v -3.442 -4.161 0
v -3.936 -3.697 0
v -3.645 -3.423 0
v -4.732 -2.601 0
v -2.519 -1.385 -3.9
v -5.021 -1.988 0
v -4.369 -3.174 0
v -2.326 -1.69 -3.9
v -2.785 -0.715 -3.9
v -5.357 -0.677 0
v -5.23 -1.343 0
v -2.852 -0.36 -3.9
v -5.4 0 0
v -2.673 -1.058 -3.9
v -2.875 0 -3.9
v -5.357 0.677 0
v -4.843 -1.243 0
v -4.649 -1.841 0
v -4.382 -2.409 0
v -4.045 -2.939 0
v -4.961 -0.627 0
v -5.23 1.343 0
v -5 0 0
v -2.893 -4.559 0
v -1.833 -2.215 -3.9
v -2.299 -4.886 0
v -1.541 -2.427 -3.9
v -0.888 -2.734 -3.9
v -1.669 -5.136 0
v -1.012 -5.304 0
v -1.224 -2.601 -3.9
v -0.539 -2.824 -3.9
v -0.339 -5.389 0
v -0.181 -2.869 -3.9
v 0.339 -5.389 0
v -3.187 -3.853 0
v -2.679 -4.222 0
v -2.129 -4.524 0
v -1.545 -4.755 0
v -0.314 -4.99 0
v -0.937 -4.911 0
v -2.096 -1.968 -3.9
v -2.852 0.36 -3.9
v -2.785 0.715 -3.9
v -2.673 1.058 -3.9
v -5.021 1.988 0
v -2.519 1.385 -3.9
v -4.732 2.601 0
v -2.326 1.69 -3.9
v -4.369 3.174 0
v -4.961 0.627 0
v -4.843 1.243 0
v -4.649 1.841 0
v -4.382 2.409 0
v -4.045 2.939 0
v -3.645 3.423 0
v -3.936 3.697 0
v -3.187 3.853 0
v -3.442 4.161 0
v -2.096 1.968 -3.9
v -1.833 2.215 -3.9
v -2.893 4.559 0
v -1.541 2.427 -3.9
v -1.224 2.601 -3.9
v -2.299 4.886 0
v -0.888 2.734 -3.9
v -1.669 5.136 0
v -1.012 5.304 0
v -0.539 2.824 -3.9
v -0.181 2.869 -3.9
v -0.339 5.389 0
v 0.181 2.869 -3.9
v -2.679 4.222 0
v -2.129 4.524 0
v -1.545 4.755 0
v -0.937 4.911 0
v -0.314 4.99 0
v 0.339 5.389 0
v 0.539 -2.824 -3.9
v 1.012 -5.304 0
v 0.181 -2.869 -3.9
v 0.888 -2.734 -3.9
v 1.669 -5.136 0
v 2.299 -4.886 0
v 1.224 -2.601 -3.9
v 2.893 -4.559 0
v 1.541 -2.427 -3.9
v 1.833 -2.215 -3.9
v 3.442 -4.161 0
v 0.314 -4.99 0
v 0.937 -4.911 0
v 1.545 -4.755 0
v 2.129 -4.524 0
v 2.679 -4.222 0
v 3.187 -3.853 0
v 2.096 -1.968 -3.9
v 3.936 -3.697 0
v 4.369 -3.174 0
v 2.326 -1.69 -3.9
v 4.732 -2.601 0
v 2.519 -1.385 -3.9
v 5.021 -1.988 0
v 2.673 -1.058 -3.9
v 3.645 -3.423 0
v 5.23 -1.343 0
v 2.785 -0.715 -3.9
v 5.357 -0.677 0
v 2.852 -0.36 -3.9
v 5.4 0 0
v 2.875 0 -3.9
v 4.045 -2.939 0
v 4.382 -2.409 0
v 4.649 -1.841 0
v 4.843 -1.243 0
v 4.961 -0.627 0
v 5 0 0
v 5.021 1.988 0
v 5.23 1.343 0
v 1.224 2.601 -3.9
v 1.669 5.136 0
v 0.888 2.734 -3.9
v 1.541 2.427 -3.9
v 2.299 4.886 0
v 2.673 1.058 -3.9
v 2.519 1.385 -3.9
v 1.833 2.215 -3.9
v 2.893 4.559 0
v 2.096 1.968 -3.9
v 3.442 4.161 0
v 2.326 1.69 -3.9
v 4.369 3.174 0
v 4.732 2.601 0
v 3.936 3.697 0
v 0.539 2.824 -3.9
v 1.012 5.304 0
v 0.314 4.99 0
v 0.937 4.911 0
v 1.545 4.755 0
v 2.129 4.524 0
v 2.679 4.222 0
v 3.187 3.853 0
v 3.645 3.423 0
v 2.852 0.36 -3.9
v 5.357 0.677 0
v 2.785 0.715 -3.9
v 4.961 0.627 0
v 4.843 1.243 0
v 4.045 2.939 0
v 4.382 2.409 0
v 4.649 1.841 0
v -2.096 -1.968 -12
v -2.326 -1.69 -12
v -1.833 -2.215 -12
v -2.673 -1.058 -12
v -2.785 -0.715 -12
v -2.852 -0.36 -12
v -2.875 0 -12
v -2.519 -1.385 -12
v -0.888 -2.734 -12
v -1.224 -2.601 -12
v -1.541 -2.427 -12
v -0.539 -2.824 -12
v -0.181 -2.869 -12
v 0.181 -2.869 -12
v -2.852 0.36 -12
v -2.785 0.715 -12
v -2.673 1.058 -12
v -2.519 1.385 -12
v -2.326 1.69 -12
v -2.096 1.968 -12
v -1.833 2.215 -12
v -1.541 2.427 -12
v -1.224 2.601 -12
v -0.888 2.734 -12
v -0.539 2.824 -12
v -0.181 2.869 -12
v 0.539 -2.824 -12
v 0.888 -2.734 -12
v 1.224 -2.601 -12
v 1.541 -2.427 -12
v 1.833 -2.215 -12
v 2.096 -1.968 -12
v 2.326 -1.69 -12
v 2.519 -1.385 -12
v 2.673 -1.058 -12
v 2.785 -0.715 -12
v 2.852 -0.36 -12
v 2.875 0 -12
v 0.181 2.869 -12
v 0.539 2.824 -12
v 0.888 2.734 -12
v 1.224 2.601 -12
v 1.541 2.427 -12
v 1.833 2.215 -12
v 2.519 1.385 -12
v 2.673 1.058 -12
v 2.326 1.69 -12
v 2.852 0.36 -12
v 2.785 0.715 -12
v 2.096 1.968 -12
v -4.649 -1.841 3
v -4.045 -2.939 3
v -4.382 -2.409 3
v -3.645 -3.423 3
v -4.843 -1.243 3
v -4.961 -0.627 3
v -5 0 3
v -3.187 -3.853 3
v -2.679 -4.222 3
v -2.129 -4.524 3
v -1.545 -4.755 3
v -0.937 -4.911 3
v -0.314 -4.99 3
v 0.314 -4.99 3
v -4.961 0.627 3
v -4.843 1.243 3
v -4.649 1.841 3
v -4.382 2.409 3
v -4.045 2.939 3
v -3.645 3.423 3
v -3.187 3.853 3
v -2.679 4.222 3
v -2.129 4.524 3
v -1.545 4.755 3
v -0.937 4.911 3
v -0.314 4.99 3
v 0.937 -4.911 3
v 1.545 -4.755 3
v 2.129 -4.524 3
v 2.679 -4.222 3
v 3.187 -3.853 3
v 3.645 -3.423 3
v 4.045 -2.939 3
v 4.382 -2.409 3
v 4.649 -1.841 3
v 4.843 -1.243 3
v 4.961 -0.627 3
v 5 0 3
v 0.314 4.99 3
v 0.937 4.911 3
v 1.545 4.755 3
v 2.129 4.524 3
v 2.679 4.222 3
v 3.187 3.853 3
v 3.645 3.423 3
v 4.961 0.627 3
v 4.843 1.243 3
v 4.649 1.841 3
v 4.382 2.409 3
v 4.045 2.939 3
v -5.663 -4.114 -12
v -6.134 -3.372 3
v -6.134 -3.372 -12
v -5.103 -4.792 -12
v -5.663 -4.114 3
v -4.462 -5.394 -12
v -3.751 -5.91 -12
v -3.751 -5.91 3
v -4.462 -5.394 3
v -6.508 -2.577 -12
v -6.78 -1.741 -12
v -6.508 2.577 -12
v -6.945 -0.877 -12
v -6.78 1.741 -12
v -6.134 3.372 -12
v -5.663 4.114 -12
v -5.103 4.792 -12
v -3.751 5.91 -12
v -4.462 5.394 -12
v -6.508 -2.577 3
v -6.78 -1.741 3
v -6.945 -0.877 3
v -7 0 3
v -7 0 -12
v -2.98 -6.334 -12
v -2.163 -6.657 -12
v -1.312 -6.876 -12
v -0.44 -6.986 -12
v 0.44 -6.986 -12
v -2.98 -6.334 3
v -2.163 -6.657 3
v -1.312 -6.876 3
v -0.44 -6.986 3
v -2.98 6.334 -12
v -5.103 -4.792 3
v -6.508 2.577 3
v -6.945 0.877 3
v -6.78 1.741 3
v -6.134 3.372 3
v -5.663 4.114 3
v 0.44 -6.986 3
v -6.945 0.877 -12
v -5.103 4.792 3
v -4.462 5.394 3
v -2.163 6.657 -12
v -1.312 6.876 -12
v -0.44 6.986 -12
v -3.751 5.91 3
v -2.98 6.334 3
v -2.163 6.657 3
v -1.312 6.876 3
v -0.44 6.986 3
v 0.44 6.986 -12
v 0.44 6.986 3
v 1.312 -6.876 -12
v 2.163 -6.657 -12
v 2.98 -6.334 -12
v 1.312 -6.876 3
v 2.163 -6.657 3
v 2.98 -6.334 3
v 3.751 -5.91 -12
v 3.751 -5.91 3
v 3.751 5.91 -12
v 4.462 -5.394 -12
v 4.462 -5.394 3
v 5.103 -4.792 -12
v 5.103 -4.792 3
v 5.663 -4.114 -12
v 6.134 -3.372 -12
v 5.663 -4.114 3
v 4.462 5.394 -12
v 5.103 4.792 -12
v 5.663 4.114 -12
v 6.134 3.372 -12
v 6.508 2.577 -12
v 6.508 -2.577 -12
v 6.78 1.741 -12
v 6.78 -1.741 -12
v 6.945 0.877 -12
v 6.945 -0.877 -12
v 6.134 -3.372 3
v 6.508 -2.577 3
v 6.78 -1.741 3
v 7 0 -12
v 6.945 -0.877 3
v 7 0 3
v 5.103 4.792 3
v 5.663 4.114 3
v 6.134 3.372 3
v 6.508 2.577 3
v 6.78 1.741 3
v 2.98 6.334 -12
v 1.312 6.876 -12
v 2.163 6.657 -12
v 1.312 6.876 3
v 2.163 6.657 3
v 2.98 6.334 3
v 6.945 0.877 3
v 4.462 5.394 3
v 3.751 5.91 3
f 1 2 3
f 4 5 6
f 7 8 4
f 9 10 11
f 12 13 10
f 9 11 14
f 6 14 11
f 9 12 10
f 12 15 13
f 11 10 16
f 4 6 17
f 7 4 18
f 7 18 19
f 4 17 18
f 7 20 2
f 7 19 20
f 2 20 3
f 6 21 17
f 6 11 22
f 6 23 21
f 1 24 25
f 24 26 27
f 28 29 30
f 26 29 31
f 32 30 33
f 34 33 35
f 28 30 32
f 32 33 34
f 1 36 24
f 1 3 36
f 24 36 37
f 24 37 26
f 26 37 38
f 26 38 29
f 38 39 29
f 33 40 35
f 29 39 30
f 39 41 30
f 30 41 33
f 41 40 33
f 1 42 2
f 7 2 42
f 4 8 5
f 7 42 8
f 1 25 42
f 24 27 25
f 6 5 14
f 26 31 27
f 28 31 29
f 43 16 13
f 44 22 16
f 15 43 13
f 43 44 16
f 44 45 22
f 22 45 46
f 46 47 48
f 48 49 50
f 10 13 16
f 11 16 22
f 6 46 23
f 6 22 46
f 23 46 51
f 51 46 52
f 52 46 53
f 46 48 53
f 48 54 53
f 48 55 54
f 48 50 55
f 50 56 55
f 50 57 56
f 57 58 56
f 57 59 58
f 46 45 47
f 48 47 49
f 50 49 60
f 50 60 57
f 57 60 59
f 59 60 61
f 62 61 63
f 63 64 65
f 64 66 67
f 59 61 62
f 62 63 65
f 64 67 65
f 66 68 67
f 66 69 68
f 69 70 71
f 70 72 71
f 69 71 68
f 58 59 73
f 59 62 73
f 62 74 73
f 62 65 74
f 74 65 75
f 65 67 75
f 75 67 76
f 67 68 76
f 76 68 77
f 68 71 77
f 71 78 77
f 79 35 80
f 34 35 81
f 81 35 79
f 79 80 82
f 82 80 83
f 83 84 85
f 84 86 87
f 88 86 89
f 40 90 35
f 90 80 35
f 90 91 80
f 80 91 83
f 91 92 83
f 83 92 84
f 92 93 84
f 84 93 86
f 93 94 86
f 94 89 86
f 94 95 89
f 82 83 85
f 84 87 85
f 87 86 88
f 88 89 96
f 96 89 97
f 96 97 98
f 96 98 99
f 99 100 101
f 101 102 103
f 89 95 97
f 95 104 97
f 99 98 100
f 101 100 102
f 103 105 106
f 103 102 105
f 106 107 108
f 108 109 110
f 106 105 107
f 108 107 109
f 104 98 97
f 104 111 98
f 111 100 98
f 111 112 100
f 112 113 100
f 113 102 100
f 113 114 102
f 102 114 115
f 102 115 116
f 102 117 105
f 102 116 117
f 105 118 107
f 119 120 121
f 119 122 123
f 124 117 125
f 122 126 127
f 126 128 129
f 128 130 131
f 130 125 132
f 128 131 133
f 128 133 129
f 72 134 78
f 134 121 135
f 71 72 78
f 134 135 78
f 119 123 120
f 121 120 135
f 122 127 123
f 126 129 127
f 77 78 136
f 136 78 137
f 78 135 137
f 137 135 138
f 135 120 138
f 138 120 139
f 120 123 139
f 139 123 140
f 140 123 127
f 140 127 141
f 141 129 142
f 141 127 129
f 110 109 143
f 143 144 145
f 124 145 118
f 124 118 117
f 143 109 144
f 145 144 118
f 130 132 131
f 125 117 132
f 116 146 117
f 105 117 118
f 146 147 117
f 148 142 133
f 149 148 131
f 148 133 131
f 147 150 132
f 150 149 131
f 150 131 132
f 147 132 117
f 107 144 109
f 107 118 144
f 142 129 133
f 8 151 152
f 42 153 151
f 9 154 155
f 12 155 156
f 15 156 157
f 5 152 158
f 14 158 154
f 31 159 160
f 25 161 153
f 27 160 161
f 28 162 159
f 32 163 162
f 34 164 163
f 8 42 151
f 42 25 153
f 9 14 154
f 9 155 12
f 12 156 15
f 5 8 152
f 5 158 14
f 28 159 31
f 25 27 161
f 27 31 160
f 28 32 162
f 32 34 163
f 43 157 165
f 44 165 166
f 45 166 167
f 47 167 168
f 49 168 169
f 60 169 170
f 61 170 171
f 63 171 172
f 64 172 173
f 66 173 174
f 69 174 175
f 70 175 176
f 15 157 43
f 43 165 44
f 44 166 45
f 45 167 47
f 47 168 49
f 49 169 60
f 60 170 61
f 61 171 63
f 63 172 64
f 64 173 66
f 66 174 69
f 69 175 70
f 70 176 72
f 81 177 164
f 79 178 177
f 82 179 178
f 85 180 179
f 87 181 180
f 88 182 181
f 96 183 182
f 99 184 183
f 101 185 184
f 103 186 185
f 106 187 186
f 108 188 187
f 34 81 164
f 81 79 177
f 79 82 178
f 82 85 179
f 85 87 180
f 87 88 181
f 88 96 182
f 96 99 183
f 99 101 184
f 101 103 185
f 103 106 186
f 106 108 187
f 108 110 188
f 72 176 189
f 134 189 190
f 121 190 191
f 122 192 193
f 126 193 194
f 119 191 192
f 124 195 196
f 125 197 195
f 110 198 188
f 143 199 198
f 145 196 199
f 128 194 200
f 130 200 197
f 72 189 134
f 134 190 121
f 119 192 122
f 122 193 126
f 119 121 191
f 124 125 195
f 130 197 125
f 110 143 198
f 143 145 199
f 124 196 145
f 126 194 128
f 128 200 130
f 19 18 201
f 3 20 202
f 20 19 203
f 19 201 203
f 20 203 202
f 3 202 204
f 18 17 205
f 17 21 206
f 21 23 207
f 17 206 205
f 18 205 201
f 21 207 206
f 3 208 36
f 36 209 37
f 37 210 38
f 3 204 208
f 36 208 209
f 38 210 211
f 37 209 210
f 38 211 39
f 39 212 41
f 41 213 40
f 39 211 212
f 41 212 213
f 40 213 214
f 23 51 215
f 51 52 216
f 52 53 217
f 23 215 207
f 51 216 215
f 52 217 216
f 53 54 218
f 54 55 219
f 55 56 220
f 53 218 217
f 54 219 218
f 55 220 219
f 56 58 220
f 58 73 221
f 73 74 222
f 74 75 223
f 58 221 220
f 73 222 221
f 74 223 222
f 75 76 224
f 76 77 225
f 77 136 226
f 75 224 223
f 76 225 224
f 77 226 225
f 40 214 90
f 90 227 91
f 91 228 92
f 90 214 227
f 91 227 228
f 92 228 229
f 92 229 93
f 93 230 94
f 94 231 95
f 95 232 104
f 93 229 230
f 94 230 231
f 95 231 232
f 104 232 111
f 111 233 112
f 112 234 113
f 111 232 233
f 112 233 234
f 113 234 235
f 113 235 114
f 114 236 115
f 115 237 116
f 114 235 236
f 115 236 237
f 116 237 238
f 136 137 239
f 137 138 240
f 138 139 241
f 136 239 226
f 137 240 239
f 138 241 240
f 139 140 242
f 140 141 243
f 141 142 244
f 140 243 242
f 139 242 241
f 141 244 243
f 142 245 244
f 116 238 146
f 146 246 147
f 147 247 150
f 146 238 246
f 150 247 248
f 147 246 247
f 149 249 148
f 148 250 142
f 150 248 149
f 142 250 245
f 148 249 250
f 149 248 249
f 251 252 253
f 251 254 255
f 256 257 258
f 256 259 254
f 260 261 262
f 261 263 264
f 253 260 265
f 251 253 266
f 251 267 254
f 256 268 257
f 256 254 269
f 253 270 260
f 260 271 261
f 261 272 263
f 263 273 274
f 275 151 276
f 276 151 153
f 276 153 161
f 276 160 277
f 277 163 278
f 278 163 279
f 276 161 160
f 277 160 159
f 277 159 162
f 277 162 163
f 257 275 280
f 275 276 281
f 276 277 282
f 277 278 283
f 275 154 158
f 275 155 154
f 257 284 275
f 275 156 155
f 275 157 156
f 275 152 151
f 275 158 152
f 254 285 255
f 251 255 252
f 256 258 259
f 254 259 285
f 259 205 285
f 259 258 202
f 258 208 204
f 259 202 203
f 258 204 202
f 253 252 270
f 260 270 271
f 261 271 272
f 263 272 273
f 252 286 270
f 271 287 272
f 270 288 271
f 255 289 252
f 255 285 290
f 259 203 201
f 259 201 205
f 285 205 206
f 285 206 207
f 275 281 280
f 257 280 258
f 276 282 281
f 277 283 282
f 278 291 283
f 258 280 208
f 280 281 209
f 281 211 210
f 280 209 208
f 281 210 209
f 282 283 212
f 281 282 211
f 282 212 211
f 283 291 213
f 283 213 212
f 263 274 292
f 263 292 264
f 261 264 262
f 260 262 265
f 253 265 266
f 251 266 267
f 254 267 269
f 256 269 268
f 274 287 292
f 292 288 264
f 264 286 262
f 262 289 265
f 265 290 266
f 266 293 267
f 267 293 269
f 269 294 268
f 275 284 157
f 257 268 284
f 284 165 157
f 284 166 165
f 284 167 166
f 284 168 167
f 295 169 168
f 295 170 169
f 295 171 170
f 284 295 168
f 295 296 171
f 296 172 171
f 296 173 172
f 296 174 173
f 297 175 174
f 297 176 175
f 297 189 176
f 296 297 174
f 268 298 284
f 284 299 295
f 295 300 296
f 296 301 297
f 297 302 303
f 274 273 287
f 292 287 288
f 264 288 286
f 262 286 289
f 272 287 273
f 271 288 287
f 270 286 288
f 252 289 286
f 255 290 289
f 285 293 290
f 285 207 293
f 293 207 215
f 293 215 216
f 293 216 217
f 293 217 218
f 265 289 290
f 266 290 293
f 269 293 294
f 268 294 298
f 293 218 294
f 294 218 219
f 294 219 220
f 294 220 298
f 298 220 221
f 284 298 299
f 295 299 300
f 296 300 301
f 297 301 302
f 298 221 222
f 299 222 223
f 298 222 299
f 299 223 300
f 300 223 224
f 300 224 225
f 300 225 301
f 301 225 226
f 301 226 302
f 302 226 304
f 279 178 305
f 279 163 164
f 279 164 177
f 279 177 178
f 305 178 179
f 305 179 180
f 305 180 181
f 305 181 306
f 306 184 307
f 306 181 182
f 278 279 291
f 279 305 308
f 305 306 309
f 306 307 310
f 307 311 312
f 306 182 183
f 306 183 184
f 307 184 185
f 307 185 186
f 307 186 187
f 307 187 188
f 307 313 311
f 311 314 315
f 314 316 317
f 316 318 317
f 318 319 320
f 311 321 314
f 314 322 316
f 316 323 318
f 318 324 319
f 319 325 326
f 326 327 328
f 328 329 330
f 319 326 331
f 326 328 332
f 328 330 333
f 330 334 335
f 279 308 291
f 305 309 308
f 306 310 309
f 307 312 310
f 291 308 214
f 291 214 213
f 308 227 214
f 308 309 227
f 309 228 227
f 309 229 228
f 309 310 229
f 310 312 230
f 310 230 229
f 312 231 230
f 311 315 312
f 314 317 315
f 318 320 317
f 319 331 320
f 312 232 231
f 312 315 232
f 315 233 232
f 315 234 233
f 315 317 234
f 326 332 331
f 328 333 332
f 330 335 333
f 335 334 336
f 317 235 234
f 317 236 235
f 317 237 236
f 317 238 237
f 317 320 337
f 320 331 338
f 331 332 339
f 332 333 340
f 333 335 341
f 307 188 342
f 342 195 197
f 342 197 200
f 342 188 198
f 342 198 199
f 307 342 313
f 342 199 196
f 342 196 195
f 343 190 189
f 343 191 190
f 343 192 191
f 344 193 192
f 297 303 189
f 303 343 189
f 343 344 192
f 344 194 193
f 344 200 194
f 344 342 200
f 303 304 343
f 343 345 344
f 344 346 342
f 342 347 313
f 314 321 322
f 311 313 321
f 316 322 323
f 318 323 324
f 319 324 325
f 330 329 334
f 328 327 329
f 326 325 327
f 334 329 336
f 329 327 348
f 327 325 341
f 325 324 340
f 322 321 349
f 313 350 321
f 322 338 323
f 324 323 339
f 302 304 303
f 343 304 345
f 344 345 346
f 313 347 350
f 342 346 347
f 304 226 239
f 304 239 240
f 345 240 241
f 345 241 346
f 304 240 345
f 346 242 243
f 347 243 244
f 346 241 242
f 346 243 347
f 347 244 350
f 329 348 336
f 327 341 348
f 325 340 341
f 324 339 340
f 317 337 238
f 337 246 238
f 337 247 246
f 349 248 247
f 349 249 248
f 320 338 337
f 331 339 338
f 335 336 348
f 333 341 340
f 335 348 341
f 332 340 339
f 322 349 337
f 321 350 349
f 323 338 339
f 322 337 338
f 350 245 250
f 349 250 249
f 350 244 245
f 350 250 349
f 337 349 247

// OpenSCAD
$fn = 50;


difference() {
	union() {
		translate(v = [0, 0, -12.0000000000]) {
			cylinder(h = 15, r = 7.0000000000);
		}
	}
	union() {
		translate(v = [0, 0, 0]) {
			rotate(a = [0, 0, 0]) {
				difference() {
					union() {
						translate(v = [0, 0, -15.0000000000]) {
							cylinder(h = 15, r = 2.6000000000);
						}
						translate(v = [0, 0, -3.9000000000]) {
							cylinder(h = 3.9000000000, r1 = 2.8750000000, r2 = 5.4000000000);
						}
						translate(v = [0, 0, -15.0000000000]) {
							cylinder(h = 15, r = 2.8750000000);
						}
						translate(v = [0, 0, -15.0000000000]) {
							cylinder(h = 15, r = 2.6000000000);
						}
					}
					union();
				}
			}
		}
		#cylinder(h = 3, r = 5.0000000000);
	}
}
